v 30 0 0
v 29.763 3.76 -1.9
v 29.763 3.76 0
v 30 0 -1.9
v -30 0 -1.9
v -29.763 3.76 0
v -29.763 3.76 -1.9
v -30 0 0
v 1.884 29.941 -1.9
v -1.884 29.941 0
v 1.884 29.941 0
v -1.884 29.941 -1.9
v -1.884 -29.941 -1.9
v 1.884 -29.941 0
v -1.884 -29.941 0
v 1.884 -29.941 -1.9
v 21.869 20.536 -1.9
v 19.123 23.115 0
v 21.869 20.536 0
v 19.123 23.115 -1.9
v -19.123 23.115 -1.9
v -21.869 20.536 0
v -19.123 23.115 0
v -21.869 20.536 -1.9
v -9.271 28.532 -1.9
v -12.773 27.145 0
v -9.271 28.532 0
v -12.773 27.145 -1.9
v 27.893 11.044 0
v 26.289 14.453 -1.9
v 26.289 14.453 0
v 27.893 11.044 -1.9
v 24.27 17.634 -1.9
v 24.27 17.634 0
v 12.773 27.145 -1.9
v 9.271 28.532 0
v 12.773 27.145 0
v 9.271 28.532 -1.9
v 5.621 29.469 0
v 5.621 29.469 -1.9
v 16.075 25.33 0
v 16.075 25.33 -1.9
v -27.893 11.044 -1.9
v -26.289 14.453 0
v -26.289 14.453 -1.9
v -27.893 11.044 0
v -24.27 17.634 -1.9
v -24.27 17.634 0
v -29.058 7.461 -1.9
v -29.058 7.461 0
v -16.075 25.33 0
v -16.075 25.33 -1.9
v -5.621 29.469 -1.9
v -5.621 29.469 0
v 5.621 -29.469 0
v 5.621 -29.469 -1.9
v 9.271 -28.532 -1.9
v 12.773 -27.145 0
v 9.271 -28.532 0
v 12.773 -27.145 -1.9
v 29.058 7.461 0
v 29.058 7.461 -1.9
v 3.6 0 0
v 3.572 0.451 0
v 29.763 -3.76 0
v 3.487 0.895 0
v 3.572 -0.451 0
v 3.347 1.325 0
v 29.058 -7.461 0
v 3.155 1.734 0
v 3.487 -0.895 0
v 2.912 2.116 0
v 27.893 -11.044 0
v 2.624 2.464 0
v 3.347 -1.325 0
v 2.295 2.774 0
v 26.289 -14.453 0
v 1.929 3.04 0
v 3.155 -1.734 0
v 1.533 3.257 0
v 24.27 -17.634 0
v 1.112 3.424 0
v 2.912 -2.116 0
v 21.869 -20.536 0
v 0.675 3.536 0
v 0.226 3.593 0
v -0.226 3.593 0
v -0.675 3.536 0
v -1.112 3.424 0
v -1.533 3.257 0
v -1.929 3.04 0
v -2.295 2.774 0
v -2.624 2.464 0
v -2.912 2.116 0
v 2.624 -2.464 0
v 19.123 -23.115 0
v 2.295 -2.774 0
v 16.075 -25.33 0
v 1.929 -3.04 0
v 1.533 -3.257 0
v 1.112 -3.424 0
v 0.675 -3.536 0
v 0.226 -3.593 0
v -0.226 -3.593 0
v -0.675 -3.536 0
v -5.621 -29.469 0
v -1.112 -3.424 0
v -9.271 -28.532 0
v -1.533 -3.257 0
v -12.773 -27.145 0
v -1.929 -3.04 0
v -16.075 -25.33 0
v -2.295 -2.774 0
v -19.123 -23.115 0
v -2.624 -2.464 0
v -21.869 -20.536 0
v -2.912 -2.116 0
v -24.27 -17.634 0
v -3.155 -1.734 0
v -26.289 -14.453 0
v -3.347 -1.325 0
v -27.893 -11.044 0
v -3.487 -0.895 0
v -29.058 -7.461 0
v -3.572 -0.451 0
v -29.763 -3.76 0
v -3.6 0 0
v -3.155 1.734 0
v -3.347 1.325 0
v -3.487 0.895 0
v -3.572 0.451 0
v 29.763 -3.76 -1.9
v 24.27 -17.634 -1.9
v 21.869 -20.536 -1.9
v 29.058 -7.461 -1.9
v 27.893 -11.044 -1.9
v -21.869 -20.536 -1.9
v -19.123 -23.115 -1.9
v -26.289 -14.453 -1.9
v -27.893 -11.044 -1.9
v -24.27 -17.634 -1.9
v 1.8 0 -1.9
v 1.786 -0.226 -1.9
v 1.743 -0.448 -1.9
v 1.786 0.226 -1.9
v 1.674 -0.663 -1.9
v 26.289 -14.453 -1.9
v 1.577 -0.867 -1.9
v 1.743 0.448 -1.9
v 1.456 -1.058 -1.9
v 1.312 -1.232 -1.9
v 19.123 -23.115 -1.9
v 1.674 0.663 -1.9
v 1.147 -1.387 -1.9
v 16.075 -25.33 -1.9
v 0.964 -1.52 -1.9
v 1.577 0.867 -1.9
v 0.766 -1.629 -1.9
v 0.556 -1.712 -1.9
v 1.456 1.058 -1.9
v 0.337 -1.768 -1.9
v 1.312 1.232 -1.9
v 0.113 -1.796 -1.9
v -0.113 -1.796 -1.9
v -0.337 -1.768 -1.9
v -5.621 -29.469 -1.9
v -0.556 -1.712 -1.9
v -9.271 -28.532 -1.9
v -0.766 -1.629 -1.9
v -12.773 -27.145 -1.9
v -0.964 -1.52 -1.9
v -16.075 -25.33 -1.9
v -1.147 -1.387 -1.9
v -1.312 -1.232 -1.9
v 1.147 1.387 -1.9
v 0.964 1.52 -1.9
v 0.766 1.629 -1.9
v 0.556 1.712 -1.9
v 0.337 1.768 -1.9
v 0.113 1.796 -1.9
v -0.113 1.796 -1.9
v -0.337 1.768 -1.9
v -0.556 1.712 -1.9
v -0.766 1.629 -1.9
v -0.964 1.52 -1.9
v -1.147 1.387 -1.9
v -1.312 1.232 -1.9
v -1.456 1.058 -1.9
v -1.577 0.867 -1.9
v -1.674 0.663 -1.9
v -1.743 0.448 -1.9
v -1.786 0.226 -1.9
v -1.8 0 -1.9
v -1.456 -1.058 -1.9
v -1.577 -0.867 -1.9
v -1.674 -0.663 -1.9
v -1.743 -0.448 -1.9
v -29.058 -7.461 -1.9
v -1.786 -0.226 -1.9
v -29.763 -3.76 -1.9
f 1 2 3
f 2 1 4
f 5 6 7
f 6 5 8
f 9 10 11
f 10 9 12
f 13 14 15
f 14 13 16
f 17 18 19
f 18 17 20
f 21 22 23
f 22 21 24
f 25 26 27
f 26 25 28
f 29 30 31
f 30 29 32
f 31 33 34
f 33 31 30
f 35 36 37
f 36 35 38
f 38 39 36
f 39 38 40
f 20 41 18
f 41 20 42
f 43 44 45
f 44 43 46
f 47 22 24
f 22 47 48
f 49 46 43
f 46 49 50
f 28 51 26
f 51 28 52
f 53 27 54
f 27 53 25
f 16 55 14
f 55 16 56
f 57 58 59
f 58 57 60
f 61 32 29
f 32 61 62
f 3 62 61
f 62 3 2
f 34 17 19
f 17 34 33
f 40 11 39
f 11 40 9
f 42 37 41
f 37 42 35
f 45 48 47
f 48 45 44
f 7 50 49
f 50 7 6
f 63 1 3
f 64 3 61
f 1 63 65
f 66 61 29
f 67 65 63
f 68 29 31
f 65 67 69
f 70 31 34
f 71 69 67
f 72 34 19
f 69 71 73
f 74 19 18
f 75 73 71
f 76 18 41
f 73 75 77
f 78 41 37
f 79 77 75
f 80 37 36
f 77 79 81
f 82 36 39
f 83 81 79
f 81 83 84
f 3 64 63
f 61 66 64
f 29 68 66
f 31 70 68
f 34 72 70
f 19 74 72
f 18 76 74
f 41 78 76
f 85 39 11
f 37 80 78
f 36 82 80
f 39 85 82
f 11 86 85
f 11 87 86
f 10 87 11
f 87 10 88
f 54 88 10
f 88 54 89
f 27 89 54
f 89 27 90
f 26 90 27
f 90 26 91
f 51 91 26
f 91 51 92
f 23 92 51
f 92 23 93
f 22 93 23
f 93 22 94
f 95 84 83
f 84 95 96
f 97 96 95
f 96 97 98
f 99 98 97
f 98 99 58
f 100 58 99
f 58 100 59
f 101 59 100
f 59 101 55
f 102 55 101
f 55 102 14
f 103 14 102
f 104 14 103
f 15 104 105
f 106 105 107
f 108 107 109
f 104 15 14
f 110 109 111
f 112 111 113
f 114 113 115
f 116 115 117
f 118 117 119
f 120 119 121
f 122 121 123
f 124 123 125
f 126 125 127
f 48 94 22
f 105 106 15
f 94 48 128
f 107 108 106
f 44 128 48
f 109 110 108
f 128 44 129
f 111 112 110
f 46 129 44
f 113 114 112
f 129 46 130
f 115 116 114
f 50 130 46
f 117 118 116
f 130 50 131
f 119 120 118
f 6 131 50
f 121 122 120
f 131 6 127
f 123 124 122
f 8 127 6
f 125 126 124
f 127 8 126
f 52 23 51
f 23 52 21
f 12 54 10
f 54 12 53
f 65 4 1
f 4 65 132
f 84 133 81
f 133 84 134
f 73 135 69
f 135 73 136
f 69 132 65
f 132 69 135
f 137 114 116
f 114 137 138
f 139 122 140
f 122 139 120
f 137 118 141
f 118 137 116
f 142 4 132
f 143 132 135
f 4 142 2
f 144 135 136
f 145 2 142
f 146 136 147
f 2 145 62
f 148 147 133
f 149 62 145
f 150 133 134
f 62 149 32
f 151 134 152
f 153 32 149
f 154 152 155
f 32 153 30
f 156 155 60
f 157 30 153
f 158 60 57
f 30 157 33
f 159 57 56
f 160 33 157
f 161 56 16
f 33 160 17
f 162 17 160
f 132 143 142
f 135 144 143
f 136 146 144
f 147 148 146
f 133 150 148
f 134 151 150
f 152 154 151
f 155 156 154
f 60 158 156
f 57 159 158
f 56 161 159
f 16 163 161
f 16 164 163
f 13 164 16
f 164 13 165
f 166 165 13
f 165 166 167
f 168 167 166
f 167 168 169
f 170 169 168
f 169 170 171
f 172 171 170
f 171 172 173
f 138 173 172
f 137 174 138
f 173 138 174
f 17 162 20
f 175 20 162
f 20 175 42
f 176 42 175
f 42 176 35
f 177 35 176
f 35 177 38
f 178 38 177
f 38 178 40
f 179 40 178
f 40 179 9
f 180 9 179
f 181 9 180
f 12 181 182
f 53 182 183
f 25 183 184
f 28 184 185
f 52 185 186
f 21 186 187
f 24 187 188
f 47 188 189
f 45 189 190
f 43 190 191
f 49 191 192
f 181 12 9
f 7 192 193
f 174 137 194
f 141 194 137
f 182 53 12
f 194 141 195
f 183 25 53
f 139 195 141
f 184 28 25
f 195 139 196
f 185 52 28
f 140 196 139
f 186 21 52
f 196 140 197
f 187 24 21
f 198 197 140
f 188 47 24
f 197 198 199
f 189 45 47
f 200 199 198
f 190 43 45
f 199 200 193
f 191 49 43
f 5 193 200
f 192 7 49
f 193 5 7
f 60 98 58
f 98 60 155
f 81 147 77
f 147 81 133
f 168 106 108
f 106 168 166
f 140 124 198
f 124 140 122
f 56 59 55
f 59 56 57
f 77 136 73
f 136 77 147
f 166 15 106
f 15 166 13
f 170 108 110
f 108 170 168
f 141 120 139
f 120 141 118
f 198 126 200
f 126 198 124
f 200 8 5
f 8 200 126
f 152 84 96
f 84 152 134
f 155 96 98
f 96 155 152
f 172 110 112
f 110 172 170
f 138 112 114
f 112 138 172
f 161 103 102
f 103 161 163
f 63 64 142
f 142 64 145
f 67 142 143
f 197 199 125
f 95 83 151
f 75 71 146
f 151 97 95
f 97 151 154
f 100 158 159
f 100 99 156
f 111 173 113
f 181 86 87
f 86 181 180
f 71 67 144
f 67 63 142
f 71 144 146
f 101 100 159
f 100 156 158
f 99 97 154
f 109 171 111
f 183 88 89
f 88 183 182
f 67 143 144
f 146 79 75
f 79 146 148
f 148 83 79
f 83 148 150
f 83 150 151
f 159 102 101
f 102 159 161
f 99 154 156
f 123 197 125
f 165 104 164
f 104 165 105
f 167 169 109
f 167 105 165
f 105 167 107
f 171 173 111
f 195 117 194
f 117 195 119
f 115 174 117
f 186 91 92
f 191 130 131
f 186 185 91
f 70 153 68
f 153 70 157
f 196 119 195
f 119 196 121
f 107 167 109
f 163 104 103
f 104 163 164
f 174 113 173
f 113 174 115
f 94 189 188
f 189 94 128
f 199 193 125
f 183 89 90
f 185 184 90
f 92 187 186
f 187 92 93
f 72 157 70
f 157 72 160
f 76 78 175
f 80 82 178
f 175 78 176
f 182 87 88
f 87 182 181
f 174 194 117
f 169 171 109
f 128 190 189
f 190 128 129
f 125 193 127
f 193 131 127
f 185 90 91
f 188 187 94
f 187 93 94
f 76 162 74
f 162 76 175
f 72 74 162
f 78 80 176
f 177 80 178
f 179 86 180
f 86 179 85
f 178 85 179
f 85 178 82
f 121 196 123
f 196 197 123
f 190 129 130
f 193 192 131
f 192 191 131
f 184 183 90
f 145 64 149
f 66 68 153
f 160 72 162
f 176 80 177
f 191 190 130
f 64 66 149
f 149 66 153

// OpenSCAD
$fn = 50;


difference() {
	union() {
		translate(v = [0, 0, -1.9000000000]) {
			cylinder(h = 1.9000000000, r = 30.0000000000);
		}
		translate(v = [0, 0, -1.9000000000]) {
			cylinder(h = 1.9000000000, r = 2.8750000000);
		}
	}
	union() {
		translate(v = [0, 0, 0]) {
			rotate(a = [0, 0, 0]) {
				difference() {
					union() {
						#translate(v = [0, 0, -1.9000000000]) {
							cylinder(h = 1.9000000000, r = 1.5000000000);
						}
						#translate(v = [0, 0, -1.9000000000]) {
							cylinder(h = 1.9000000000, r1 = 1.8000000000, r2 = 3.6000000000);
						}
						#translate(v = [0, 0, -1.9000000000]) {
							cylinder(h = 1.9000000000, r = 1.8000000000);
						}
						#translate(v = [0, 0, -1.9000000000]) {
							cylinder(h = 1.9000000000, r = 1.5000000000);
						}
					}
					union();
				}
			}
		}
	}
}
